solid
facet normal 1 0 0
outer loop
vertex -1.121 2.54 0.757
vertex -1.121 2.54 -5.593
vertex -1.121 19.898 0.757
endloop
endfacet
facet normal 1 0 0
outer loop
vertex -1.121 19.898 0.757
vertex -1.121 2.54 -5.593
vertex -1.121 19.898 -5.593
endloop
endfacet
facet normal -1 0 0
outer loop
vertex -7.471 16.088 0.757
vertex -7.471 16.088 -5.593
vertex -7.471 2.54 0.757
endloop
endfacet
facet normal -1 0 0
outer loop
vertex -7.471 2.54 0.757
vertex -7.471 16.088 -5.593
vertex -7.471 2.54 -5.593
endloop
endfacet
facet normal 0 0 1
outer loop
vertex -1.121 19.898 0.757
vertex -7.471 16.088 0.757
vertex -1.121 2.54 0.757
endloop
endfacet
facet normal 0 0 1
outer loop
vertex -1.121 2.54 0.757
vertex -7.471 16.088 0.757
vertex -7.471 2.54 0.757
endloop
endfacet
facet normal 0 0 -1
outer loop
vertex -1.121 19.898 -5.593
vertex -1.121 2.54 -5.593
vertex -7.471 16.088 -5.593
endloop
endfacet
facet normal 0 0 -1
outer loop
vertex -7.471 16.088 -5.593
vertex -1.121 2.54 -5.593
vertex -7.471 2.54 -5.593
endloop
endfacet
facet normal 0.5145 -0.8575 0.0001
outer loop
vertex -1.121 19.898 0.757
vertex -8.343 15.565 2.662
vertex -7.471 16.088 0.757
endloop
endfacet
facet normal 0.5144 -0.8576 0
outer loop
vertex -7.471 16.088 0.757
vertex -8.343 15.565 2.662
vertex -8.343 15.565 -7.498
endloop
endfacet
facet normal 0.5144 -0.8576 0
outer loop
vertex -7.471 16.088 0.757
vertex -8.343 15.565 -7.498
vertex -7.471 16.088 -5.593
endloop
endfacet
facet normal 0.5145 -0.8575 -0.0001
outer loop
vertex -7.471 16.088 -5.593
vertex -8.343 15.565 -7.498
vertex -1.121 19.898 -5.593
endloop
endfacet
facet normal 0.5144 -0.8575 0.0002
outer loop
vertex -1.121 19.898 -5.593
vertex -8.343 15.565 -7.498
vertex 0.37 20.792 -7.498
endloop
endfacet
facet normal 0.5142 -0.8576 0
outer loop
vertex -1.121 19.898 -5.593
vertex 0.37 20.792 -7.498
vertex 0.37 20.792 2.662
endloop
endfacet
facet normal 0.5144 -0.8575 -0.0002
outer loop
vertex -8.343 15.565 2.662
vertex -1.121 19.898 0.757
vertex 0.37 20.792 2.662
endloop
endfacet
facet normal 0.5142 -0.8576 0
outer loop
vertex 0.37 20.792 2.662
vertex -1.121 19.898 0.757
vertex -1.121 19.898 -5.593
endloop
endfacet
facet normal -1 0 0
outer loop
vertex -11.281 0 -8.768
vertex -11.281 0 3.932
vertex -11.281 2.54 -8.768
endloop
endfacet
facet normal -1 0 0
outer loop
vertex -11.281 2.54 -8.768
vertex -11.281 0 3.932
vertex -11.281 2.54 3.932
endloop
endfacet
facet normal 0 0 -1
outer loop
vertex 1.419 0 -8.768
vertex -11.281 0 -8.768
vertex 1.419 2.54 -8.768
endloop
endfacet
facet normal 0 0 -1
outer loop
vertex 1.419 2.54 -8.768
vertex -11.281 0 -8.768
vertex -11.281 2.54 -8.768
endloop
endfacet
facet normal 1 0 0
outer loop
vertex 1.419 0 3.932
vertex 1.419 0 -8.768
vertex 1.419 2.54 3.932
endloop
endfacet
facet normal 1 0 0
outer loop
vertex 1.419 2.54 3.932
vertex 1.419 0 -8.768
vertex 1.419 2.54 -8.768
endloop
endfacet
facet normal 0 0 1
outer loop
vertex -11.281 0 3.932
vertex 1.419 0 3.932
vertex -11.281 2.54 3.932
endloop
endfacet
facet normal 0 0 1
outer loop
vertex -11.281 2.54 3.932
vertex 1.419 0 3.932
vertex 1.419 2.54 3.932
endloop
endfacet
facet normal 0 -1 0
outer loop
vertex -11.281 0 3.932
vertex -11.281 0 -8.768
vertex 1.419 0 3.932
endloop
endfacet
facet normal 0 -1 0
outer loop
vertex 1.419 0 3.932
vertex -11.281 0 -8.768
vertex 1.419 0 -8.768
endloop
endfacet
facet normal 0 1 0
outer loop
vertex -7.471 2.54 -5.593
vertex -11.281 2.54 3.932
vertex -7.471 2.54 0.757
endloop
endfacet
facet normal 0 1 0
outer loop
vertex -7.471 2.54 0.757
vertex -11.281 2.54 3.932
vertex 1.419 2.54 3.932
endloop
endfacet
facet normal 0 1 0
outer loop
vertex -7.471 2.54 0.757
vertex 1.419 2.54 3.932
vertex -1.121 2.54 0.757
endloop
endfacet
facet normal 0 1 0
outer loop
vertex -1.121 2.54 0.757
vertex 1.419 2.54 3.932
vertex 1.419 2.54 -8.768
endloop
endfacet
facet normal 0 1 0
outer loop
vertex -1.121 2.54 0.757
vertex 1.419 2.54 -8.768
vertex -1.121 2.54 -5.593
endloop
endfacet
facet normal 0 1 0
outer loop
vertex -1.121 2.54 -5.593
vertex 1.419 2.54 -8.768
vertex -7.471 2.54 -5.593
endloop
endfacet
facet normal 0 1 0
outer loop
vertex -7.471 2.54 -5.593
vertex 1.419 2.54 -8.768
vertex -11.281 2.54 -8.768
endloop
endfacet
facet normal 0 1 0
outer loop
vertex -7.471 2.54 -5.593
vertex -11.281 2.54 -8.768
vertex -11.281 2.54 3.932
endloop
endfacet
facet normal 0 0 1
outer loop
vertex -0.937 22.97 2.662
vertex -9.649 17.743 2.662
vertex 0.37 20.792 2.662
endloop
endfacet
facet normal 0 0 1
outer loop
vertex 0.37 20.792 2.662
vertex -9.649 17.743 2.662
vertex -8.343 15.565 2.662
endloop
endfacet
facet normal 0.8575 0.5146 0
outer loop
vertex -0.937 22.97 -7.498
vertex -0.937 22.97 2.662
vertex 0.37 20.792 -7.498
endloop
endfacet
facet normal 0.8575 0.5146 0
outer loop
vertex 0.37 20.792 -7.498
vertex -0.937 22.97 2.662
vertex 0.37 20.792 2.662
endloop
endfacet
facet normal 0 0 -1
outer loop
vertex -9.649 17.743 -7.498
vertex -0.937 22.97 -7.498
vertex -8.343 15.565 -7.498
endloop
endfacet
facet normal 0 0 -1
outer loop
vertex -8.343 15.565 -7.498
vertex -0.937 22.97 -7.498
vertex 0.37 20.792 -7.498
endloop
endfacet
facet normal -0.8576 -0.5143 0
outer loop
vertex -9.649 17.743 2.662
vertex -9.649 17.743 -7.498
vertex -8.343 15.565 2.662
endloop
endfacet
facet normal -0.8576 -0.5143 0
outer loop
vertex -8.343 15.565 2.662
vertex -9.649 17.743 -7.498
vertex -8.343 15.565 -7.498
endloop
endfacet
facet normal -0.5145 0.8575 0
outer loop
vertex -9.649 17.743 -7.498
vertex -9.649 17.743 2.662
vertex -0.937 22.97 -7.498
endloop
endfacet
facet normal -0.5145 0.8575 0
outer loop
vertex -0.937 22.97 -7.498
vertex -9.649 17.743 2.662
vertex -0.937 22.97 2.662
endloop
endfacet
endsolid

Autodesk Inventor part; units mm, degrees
ref_plane "YZ Plane" through (0, 0, 0) normal (1, 0, 0) x (0, 1, 0)
ref_plane "XZ Plane" through (0, 0, 0) normal (0, 1, 0) x (-1, 0, 0)
ref_plane "XY Plane" through (0, 0, 0) normal (0, 0, 1) x (1, 0, 0)
sketch "Sketch1" plane through (0, 0, 0) normal (0, 1, 0) x (-1, 0, 0)
  line L0 (-1.4187, 3.9318) -> (11.2813, 3.9318)
  line L1 (11.2813, 3.9318) -> (11.2813, -8.7682)
  line L2 (11.2813, -8.7682) -> (-1.4187, -8.7682)
  line L3 (-1.4187, -8.7682) -> (-1.4187, 3.9318)
  point P0 (0, 0)
  dimension "d0" = 12.7
  dimension "d1" = 12.7
extrude "Extrusion1" add sketch "Sketch1" along normal blind 2.54
sketch "Sketch2" plane through (0, 2.54, 0) normal (0, 1, 0) x (1, 0, 0)
  line L0 (-1.1213, -0.7568) -> (-7.4713, -0.7568)
  line L1 (-7.4713, -0.7568) -> (-7.4713, 5.5932)
  line L2 (-7.4713, 5.5932) -> (-1.1213, 5.5932)
  line L3 (-1.1213, 5.5932) -> (-1.1213, -0.7568)
  line L4 (1.4187, 8.7682) -> (-11.2813, 8.7682) projected
  line L5 (1.4187, -3.9318) -> (1.4187, 8.7682) projected
  point P0 (0, 0)
  dimension "d4" = 6.35
  dimension "d5" = 6.35
  dimension "d6" = 3.175
  dimension "d7" = 2.54
extrude "Extrusion2" add sketch "Sketch2" along normal blind 16.51
sketch "Sketch3" plane through (-1.1213, 2.54, 0.7568) normal (1, 0, 0) x (0, 0, -1)
  line L0 (0, 16.51) -> (6.35, 16.51) projected
  line L1 (3.175, 16.51) -> (3.175, 20.32)
  line L2 (3.175, 20.32) -> (5.6637, 20.32)
  point P0 (0.7568, -2.54)
  dimension "d10" = 3.81
ref_plane "Work Plane1" through (-1.1213, 22.86, -4.9069) normal (0.5144958, -0.8574929, 0) x (0, 0, 1)
sketch "Sketch4" plane through (-1.1213, 22.86, -4.9069) normal (0.5144958, -0.8574929, 0) x (0, 0, 1)
  line L0 (-2.5913, 9.9453) -> (7.5687, 9.9453)
  line L1 (7.5687, 9.9453) -> (7.5687, -0.2147)
  line L2 (7.5687, -0.2147) -> (-2.5913, -0.2147)
  line L3 (-2.5913, -0.2147) -> (-2.5913, 9.9453)
  line L4 (5.6637, 7.4053) -> (5.6637, 1.9602) projected
  line L5 (-0.6863, 7.4053) -> (5.6637, 7.4053) projected
  point P0 (4.9069, 10.7999)
  dimension "d11" = 10.16
  dimension "d12" = 10.16
  dimension "d13" = 1.905
  dimension "d14" = 2.54
extrude "Extrusion3" add sketch "Sketch4" along normal blind 2.54
sketch "Sketch5" plane through (0, 19.05, 0) normal (0, 1, 0) x (1, 0, 0)
  line L0 (-8.3425, -2.6618) -> (-8.3425, 7.4982) projected
  line L1 (-8.3425, 7.4982) -> (0.3696, 7.4982) projected
  line L2 (0.3696, 7.4982) -> (0.3696, -2.6618) projected
  line L3 (0.3696, -2.6618) -> (-8.3425, -2.6618) projected
  line L4 (-7.4713, -0.7568) -> (-7.4713, 5.5932) projected
  line L5 (-2.5344, -0.7568) -> (-7.4713, -0.7568) projected
  line L6 (-2.5344, 5.5932) -> (-2.5344, -0.7568) projected
  line L7 (-7.4713, 5.5932) -> (-2.5344, 5.5932) projected
  line L8 (-1.1213, -0.7568) -> (-2.5344, -0.7568)
  line L9 (-2.5344, -0.7568) -> (-2.5344, 5.5932)
  line L10 (-2.5344, 5.5932) -> (-1.1213, 5.5932)
  line L11 (-1.1213, 5.5932) -> (-1.1213, -0.7568)
  point P0 (0, 0)
extrude "Extrusion4" add sketch "Sketch5" along normal up to next contours L6 L10 L11 L8
properties part number "Plaque"
